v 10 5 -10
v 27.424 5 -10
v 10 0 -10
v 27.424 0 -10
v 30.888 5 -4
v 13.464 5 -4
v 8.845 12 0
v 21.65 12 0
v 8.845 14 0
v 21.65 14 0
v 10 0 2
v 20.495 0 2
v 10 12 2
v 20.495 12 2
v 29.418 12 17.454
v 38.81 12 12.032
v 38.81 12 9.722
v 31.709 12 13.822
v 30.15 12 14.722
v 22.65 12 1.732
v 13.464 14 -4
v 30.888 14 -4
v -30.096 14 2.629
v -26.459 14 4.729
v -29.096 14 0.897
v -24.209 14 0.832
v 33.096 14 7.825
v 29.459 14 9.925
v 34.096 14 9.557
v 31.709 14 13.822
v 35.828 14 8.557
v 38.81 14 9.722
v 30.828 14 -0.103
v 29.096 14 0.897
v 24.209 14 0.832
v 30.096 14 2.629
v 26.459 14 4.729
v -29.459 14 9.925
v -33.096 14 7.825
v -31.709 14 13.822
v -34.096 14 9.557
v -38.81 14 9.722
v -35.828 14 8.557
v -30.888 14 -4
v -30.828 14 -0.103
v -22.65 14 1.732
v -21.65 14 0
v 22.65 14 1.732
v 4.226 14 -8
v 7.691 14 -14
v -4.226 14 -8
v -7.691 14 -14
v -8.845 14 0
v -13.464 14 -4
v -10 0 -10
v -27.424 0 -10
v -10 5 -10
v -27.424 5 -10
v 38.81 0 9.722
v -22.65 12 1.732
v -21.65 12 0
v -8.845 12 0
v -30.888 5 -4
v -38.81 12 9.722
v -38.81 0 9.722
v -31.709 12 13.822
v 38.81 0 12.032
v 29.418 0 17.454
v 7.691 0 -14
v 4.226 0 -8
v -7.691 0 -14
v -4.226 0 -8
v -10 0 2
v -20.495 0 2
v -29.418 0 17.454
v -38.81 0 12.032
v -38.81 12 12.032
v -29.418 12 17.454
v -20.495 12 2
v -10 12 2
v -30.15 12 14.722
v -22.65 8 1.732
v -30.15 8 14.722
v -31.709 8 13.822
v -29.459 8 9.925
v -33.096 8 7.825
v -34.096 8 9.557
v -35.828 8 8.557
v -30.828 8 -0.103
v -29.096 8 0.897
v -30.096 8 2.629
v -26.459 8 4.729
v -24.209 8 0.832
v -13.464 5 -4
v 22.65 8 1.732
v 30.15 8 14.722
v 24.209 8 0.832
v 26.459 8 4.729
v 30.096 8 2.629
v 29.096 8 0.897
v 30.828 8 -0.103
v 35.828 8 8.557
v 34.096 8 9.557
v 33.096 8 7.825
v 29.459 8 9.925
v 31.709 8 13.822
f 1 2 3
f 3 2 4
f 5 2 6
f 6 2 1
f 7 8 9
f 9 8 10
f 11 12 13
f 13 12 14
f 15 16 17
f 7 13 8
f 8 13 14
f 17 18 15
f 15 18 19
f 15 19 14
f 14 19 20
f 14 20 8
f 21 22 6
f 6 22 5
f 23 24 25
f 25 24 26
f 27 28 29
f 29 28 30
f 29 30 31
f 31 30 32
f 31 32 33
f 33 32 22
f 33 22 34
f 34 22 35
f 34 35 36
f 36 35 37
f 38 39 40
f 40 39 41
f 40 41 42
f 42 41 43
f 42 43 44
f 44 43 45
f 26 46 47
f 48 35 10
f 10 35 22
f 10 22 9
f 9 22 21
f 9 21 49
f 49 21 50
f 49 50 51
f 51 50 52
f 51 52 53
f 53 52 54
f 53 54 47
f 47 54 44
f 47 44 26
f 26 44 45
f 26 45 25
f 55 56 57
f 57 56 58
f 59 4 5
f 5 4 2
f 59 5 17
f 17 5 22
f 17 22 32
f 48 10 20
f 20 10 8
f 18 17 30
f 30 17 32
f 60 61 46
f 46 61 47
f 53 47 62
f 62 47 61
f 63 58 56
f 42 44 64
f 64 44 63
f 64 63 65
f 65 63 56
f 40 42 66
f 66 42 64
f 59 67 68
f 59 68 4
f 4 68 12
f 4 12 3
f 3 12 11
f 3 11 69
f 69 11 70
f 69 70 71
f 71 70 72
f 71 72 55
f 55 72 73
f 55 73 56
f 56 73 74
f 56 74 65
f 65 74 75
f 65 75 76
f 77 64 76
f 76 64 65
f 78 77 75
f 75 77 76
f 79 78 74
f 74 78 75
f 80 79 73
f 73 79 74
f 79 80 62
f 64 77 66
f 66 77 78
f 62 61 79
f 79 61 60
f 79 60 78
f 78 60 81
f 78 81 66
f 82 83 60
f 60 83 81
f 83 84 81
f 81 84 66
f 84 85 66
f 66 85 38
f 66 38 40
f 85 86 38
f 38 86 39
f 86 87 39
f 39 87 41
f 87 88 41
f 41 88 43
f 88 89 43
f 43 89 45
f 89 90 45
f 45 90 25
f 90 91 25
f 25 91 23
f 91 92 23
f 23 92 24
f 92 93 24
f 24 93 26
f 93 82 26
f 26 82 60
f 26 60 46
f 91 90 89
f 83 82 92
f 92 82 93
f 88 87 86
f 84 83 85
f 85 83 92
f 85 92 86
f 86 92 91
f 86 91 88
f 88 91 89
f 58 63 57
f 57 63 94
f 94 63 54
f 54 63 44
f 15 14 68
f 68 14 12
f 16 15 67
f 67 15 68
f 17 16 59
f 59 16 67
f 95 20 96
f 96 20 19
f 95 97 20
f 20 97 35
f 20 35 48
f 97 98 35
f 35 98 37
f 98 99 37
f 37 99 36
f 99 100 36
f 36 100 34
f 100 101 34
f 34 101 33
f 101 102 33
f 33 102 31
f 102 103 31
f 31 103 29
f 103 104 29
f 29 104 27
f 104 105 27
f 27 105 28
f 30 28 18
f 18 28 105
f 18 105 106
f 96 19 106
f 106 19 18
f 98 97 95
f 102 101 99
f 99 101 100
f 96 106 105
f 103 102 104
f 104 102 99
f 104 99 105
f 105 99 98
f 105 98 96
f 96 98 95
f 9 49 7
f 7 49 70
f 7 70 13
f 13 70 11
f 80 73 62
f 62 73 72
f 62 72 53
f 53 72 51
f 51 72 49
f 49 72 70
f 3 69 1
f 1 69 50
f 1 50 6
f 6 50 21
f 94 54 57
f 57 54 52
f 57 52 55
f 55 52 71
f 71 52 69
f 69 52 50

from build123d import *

# Parameters (mm, degrees)
BOSS_EXTRUDE1_DEPTH = 14
BOSS_EXTRUDE2_DEPTH = 12
CUT_EXTRUDE2_DEPTH  = 6
SKETCH7_W           = 39.032004281
SKETCH7_H           = 8.14809517
CUT_EXTRUDE3_DEPTH  = 9
CUT_EXTRUDE4_DEPTH  = 14
BOSS_EXTRUDE3_DEPTH = 14


with BuildPart() as part:
    # Sketch2 → Boss-Extrude1 (new body)
    with BuildSketch(Plane(origin=(0, 0, 0), x_dir=(1, 0, 0), z_dir=(0, 1, 0))):
        Polygon((-21.65, 0), (0, 0), (0, 10), (-27.423502692, 10), (-38.810254038, -9.722431864), (-30.15, -14.722431864), align=None)
    boss_extrude1 = extrude(amount=BOSS_EXTRUDE1_DEPTH)

    # Sketch5 → Boss-Extrude2 (add)
    with BuildSketch(Plane(origin=(0, 0, 0), x_dir=(1, 0, 0), z_dir=(0, 1, 0))):
        Polygon((-38.810254038, -9.722431864), (-38.810254038, -12.031832941), (-29.417949192, -17.454482672), (-20.495299462, -2), (0, -2), (0, 0), (-21.65, 0), (-30.15, -14.722431864), align=None)
    boss_extrude2 = extrude(amount=BOSS_EXTRUDE2_DEPTH)

    # Sketch6 → Cut-Extrude2 (cut)
    with BuildSketch(Plane(origin=(0, 14, 0), x_dir=(1, 0, 0), z_dir=(0, 1, 0))):
        Polygon((-30.15, -14.722431864), (-31.708845727, -13.822431864), (-29.458845727, -9.925317547), (-33.096152423, -7.825317547), (-34.096152423, -9.557368355), (-35.82820323, -8.557368355), (-30.82820323, 0.102885683), (-29.096152423, -0.897114317), (-30.096152423, -2.629165125), (-26.458845727, -4.729165125), (-24.208845727, -0.832050808), (-22.65, -1.732050808), align=None)
    cut_extrude2 = extrude(amount=-CUT_EXTRUDE2_DEPTH, mode=Mode.SUBTRACT)

    # Sketch7 → Cut-Extrude3 (cut)
    with BuildSketch(Plane(origin=(0, 14, 0), x_dir=(1, 0, 0), z_dir=(0, 1, 0))):
        with Locations((-15.834859511, 8.074047585)):
            Rectangle(SKETCH7_W, SKETCH7_H)
    cut_extrude3 = extrude(amount=-CUT_EXTRUDE3_DEPTH, mode=Mode.SUBTRACT)

    # Mirror2: Boss-Extrude1, Boss-Extrude2, Cut-Extrude2, Cut-Extrude3 across plane
    add(boss_extrude1.mirror(Plane(origin=(0, 0, 0), x_dir=(0, 0, 1), z_dir=(1, 0, 0))))
    add(boss_extrude2.mirror(Plane(origin=(0, 0, 0), x_dir=(0, 0, 1), z_dir=(1, 0, 0))))
    add(cut_extrude2.mirror(Plane(origin=(0, 0, 0), x_dir=(0, 0, 1), z_dir=(1, 0, 0))), mode=Mode.SUBTRACT)
    add(cut_extrude3.mirror(Plane(origin=(0, 0, 0), x_dir=(0, 0, 1), z_dir=(1, 0, 0))), mode=Mode.SUBTRACT)

    # Sketch8 → Cut-Extrude4 (cut)
    with BuildSketch(Plane(origin=(0, 14, 0), x_dir=(1, 0, 0), z_dir=(0, 1, 0))):
        Polygon((-10, -2), (-4.226497308, 8), (4.226497308, 8), (10, -2), align=None)
    extrude(amount=-CUT_EXTRUDE4_DEPTH, mode=Mode.SUBTRACT)

    # Sketch9 → Boss-Extrude3 (add)
    with BuildSketch(Plane(origin=(0, 14, 0), x_dir=(1, 0, 0), z_dir=(0, 1, 0))):
        Polygon((-13.464101615, 4), (-7.690598923, 14), (7.690598923, 14), (13.464101615, 4), (6.535898385, 4), (4.226497308, 8), (-4.226497308, 8), (-6.535898385, 4), align=None)
    extrude(amount=-BOSS_EXTRUDE3_DEPTH)


solid = part.part
